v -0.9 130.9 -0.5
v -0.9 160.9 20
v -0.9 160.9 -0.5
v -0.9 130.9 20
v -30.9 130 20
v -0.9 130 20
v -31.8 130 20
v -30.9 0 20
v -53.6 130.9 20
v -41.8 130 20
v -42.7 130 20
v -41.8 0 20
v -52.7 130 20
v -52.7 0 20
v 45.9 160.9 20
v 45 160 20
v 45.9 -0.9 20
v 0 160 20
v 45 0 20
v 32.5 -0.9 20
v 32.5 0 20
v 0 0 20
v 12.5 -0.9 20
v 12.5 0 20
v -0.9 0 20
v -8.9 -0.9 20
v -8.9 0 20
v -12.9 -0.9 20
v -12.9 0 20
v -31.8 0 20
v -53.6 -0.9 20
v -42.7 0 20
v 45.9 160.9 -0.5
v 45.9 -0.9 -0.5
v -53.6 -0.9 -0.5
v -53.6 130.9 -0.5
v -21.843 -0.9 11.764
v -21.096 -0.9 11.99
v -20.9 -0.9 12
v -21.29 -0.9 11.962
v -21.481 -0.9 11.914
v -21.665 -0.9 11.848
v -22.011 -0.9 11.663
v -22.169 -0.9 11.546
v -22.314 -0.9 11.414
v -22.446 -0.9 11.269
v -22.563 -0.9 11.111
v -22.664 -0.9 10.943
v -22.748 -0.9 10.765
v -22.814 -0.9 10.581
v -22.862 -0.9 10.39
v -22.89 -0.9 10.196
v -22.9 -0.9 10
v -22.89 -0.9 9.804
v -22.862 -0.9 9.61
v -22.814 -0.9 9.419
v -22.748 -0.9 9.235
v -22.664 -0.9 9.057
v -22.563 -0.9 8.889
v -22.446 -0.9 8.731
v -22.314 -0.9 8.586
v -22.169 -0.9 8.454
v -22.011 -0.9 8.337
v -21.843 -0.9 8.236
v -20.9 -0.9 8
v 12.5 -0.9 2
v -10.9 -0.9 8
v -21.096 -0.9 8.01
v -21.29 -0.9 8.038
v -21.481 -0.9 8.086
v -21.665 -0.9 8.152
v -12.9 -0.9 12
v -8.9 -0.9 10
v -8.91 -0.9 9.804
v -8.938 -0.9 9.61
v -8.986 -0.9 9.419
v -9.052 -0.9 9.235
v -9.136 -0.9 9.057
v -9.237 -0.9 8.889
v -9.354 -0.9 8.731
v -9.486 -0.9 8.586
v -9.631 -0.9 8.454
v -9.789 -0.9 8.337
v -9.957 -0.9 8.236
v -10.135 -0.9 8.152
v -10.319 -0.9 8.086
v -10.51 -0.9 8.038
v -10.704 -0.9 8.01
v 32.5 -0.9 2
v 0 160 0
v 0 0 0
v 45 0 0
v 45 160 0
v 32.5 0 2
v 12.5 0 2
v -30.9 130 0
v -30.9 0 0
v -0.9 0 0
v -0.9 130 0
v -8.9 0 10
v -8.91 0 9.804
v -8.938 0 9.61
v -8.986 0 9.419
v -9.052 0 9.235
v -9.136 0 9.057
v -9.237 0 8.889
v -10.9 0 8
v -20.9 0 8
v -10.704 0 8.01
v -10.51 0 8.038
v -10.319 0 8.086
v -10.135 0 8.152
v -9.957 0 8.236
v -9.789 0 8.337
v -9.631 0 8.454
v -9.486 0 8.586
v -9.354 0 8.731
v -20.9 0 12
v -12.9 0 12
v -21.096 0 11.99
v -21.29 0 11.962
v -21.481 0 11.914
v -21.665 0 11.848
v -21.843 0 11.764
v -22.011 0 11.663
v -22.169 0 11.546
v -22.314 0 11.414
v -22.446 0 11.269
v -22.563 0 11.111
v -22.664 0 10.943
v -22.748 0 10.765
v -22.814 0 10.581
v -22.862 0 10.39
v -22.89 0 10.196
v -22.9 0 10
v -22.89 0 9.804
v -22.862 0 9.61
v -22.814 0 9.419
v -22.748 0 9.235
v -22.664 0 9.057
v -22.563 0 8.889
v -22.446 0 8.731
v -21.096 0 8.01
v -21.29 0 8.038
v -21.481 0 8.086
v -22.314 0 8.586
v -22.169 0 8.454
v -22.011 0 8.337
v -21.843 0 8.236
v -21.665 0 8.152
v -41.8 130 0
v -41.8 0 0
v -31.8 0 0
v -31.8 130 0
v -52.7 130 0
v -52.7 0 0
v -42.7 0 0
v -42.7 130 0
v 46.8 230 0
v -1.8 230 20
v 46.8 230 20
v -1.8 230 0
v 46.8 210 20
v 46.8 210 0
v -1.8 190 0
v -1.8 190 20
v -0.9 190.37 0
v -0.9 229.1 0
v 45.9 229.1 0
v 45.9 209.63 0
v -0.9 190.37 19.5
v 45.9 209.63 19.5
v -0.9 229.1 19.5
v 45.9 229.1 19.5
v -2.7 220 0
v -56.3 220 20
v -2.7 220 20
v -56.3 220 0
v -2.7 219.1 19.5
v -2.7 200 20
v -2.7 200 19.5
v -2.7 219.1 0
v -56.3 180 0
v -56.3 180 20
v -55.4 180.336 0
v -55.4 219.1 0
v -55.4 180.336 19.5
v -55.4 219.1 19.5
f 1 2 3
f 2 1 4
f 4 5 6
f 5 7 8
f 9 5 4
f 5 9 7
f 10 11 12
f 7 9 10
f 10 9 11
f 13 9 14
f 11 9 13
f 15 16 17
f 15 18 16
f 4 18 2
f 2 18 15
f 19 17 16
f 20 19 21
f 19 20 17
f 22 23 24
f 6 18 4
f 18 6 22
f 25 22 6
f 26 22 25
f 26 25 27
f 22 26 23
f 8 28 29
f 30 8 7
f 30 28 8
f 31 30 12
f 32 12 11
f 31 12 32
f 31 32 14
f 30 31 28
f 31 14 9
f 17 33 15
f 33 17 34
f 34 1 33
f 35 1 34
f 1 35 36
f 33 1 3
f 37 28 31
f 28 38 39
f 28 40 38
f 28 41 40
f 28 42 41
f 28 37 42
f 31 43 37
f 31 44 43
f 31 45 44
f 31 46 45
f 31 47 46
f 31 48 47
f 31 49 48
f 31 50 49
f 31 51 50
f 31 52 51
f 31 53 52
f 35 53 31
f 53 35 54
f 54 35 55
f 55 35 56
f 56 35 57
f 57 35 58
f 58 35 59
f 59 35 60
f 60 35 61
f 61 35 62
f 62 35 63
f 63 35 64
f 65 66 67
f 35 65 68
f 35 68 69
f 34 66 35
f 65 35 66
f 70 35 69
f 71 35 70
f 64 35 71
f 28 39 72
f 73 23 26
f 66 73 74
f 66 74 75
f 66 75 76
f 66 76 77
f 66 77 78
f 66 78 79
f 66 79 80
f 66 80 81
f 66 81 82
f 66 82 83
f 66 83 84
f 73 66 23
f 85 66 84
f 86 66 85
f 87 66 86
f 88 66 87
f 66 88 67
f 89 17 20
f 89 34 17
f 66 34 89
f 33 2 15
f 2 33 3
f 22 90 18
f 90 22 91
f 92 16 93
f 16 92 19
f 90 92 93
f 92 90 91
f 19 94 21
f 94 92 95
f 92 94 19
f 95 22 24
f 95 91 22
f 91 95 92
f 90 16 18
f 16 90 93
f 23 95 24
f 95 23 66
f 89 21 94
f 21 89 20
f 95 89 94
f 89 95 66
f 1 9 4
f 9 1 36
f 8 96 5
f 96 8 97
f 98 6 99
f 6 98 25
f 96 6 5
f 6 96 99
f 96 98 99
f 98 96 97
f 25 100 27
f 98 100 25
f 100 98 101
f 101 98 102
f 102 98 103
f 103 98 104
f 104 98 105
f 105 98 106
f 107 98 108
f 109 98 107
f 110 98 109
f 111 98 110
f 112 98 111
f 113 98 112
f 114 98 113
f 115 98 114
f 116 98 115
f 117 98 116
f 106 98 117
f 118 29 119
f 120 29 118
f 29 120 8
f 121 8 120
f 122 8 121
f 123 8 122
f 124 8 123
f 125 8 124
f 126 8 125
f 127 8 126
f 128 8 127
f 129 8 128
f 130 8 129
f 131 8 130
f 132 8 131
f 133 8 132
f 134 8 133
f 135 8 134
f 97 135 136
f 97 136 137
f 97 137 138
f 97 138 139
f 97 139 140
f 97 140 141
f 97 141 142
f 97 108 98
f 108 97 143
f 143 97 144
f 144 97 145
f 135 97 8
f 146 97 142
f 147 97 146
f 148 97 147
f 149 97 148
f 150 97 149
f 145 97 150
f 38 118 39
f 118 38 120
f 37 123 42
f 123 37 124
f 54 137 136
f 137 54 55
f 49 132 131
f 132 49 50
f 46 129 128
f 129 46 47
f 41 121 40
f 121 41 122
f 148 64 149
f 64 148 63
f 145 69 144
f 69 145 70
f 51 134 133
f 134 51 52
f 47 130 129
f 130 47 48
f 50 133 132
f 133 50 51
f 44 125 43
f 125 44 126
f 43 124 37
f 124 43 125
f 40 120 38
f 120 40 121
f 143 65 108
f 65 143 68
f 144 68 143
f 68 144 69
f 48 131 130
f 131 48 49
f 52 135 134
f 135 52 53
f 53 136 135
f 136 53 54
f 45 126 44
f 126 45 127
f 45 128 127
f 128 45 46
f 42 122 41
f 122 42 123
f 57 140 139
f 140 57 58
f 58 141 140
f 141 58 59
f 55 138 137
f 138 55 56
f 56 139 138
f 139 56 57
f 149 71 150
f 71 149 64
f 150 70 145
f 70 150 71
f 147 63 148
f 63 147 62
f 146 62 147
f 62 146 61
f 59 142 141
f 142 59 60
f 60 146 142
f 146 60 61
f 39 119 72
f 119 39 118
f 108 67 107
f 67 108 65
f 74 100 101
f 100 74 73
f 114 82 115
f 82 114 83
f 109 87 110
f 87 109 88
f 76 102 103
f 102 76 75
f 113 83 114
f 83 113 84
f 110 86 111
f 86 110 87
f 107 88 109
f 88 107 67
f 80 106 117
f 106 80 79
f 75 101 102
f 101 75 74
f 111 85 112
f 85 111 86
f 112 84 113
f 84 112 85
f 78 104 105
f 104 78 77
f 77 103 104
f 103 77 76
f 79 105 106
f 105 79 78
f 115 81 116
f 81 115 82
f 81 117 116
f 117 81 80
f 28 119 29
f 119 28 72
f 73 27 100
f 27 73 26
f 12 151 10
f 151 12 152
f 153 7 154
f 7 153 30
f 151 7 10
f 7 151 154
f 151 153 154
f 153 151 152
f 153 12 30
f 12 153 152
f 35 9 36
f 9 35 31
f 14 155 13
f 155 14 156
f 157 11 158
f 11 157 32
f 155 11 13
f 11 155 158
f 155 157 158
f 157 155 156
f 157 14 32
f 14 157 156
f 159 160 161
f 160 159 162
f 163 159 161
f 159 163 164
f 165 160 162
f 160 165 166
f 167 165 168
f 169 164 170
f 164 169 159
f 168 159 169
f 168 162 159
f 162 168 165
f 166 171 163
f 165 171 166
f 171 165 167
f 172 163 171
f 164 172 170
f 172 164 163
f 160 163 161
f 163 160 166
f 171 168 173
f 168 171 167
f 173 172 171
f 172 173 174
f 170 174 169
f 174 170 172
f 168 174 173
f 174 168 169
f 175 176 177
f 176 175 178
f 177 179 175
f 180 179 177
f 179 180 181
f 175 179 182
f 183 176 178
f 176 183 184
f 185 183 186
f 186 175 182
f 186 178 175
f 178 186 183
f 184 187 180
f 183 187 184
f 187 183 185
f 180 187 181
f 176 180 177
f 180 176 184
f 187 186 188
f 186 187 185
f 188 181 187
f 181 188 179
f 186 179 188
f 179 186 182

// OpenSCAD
first_layer_height = 0.20;
layer_height = 0.15;
layer_width = 0.45;

$fn = 64;

wall_thickness = 2*layer_width;
bottom_thickness = first_layer_height + 2*layer_height;
height = 20;

module controller() {
    width = 45;
    depth = 160;
    
    difference() {
        translate([-wall_thickness, -wall_thickness,-bottom_thickness])
        cube([width+2*wall_thickness,depth+2*wall_thickness,height+bottom_thickness]);
        cube([width,depth,height+5]);
        
        translate([12.5,-1,2])
        cube([20,20,30]);
    }
}

module cable() {
    width = 30;
    depth = 130;
    
    difference() {
        translate([-wall_thickness, -wall_thickness,-bottom_thickness])
        cube([width+2*wall_thickness,depth+2*wall_thickness,height+bottom_thickness]);
        cube([width,depth,height+5]);
        
        translate([10,1,10])
        rotate(90, [1,0,0])
        cylinder(2,2,2);
        
        translate([10,-4,8])
        cube([10,10,4]);
        
        translate([20,1,10])
        rotate(90, [1,0,0])
        cylinder(2,2,2);
        
        translate([18,-4,10])
        #cube([4,10,12]);
    }
}

module adapter() {
    width = 10;
    depth = 130;
    
    difference() {
        translate([-wall_thickness, -wall_thickness,-bottom_thickness])
        cube([width+2*wall_thickness,depth+2*wall_thickness,height+bottom_thickness]);
        cube([width,depth,height+5]);
    }
}

controller();
translate([-30-wall_thickness,0,0])
cable();

translate([-40-2*wall_thickness,0,0])
adapter();
translate([-50-3*wall_thickness,0,0])
adapter();


module leftCover() {
    difference() {
        linear_extrude(height=20) {
            polygon(points=[[0,0], [45+4*wall_thickness,20], [45+4*wall_thickness,40], [0,40]]);
        }
        translate([wall_thickness,0,0])
        cube([45+2*wall_thickness,40-wall_thickness,20-bottom_thickness]);
    }
}

module rightCover() {
    difference() {
        linear_extrude(height=20) {
            polygon(points=[[0,0], [50+4*wall_thickness,20], [50+4*wall_thickness,40], [0,40]]);
        }
        translate([wall_thickness,0,0])
        cube([52+2*wall_thickness,40-wall_thickness,20-bottom_thickness]);
    }
}

translate([-2*wall_thickness,190])
leftCover();

translate([-50-7*wall_thickness, 180])
rightCover();
